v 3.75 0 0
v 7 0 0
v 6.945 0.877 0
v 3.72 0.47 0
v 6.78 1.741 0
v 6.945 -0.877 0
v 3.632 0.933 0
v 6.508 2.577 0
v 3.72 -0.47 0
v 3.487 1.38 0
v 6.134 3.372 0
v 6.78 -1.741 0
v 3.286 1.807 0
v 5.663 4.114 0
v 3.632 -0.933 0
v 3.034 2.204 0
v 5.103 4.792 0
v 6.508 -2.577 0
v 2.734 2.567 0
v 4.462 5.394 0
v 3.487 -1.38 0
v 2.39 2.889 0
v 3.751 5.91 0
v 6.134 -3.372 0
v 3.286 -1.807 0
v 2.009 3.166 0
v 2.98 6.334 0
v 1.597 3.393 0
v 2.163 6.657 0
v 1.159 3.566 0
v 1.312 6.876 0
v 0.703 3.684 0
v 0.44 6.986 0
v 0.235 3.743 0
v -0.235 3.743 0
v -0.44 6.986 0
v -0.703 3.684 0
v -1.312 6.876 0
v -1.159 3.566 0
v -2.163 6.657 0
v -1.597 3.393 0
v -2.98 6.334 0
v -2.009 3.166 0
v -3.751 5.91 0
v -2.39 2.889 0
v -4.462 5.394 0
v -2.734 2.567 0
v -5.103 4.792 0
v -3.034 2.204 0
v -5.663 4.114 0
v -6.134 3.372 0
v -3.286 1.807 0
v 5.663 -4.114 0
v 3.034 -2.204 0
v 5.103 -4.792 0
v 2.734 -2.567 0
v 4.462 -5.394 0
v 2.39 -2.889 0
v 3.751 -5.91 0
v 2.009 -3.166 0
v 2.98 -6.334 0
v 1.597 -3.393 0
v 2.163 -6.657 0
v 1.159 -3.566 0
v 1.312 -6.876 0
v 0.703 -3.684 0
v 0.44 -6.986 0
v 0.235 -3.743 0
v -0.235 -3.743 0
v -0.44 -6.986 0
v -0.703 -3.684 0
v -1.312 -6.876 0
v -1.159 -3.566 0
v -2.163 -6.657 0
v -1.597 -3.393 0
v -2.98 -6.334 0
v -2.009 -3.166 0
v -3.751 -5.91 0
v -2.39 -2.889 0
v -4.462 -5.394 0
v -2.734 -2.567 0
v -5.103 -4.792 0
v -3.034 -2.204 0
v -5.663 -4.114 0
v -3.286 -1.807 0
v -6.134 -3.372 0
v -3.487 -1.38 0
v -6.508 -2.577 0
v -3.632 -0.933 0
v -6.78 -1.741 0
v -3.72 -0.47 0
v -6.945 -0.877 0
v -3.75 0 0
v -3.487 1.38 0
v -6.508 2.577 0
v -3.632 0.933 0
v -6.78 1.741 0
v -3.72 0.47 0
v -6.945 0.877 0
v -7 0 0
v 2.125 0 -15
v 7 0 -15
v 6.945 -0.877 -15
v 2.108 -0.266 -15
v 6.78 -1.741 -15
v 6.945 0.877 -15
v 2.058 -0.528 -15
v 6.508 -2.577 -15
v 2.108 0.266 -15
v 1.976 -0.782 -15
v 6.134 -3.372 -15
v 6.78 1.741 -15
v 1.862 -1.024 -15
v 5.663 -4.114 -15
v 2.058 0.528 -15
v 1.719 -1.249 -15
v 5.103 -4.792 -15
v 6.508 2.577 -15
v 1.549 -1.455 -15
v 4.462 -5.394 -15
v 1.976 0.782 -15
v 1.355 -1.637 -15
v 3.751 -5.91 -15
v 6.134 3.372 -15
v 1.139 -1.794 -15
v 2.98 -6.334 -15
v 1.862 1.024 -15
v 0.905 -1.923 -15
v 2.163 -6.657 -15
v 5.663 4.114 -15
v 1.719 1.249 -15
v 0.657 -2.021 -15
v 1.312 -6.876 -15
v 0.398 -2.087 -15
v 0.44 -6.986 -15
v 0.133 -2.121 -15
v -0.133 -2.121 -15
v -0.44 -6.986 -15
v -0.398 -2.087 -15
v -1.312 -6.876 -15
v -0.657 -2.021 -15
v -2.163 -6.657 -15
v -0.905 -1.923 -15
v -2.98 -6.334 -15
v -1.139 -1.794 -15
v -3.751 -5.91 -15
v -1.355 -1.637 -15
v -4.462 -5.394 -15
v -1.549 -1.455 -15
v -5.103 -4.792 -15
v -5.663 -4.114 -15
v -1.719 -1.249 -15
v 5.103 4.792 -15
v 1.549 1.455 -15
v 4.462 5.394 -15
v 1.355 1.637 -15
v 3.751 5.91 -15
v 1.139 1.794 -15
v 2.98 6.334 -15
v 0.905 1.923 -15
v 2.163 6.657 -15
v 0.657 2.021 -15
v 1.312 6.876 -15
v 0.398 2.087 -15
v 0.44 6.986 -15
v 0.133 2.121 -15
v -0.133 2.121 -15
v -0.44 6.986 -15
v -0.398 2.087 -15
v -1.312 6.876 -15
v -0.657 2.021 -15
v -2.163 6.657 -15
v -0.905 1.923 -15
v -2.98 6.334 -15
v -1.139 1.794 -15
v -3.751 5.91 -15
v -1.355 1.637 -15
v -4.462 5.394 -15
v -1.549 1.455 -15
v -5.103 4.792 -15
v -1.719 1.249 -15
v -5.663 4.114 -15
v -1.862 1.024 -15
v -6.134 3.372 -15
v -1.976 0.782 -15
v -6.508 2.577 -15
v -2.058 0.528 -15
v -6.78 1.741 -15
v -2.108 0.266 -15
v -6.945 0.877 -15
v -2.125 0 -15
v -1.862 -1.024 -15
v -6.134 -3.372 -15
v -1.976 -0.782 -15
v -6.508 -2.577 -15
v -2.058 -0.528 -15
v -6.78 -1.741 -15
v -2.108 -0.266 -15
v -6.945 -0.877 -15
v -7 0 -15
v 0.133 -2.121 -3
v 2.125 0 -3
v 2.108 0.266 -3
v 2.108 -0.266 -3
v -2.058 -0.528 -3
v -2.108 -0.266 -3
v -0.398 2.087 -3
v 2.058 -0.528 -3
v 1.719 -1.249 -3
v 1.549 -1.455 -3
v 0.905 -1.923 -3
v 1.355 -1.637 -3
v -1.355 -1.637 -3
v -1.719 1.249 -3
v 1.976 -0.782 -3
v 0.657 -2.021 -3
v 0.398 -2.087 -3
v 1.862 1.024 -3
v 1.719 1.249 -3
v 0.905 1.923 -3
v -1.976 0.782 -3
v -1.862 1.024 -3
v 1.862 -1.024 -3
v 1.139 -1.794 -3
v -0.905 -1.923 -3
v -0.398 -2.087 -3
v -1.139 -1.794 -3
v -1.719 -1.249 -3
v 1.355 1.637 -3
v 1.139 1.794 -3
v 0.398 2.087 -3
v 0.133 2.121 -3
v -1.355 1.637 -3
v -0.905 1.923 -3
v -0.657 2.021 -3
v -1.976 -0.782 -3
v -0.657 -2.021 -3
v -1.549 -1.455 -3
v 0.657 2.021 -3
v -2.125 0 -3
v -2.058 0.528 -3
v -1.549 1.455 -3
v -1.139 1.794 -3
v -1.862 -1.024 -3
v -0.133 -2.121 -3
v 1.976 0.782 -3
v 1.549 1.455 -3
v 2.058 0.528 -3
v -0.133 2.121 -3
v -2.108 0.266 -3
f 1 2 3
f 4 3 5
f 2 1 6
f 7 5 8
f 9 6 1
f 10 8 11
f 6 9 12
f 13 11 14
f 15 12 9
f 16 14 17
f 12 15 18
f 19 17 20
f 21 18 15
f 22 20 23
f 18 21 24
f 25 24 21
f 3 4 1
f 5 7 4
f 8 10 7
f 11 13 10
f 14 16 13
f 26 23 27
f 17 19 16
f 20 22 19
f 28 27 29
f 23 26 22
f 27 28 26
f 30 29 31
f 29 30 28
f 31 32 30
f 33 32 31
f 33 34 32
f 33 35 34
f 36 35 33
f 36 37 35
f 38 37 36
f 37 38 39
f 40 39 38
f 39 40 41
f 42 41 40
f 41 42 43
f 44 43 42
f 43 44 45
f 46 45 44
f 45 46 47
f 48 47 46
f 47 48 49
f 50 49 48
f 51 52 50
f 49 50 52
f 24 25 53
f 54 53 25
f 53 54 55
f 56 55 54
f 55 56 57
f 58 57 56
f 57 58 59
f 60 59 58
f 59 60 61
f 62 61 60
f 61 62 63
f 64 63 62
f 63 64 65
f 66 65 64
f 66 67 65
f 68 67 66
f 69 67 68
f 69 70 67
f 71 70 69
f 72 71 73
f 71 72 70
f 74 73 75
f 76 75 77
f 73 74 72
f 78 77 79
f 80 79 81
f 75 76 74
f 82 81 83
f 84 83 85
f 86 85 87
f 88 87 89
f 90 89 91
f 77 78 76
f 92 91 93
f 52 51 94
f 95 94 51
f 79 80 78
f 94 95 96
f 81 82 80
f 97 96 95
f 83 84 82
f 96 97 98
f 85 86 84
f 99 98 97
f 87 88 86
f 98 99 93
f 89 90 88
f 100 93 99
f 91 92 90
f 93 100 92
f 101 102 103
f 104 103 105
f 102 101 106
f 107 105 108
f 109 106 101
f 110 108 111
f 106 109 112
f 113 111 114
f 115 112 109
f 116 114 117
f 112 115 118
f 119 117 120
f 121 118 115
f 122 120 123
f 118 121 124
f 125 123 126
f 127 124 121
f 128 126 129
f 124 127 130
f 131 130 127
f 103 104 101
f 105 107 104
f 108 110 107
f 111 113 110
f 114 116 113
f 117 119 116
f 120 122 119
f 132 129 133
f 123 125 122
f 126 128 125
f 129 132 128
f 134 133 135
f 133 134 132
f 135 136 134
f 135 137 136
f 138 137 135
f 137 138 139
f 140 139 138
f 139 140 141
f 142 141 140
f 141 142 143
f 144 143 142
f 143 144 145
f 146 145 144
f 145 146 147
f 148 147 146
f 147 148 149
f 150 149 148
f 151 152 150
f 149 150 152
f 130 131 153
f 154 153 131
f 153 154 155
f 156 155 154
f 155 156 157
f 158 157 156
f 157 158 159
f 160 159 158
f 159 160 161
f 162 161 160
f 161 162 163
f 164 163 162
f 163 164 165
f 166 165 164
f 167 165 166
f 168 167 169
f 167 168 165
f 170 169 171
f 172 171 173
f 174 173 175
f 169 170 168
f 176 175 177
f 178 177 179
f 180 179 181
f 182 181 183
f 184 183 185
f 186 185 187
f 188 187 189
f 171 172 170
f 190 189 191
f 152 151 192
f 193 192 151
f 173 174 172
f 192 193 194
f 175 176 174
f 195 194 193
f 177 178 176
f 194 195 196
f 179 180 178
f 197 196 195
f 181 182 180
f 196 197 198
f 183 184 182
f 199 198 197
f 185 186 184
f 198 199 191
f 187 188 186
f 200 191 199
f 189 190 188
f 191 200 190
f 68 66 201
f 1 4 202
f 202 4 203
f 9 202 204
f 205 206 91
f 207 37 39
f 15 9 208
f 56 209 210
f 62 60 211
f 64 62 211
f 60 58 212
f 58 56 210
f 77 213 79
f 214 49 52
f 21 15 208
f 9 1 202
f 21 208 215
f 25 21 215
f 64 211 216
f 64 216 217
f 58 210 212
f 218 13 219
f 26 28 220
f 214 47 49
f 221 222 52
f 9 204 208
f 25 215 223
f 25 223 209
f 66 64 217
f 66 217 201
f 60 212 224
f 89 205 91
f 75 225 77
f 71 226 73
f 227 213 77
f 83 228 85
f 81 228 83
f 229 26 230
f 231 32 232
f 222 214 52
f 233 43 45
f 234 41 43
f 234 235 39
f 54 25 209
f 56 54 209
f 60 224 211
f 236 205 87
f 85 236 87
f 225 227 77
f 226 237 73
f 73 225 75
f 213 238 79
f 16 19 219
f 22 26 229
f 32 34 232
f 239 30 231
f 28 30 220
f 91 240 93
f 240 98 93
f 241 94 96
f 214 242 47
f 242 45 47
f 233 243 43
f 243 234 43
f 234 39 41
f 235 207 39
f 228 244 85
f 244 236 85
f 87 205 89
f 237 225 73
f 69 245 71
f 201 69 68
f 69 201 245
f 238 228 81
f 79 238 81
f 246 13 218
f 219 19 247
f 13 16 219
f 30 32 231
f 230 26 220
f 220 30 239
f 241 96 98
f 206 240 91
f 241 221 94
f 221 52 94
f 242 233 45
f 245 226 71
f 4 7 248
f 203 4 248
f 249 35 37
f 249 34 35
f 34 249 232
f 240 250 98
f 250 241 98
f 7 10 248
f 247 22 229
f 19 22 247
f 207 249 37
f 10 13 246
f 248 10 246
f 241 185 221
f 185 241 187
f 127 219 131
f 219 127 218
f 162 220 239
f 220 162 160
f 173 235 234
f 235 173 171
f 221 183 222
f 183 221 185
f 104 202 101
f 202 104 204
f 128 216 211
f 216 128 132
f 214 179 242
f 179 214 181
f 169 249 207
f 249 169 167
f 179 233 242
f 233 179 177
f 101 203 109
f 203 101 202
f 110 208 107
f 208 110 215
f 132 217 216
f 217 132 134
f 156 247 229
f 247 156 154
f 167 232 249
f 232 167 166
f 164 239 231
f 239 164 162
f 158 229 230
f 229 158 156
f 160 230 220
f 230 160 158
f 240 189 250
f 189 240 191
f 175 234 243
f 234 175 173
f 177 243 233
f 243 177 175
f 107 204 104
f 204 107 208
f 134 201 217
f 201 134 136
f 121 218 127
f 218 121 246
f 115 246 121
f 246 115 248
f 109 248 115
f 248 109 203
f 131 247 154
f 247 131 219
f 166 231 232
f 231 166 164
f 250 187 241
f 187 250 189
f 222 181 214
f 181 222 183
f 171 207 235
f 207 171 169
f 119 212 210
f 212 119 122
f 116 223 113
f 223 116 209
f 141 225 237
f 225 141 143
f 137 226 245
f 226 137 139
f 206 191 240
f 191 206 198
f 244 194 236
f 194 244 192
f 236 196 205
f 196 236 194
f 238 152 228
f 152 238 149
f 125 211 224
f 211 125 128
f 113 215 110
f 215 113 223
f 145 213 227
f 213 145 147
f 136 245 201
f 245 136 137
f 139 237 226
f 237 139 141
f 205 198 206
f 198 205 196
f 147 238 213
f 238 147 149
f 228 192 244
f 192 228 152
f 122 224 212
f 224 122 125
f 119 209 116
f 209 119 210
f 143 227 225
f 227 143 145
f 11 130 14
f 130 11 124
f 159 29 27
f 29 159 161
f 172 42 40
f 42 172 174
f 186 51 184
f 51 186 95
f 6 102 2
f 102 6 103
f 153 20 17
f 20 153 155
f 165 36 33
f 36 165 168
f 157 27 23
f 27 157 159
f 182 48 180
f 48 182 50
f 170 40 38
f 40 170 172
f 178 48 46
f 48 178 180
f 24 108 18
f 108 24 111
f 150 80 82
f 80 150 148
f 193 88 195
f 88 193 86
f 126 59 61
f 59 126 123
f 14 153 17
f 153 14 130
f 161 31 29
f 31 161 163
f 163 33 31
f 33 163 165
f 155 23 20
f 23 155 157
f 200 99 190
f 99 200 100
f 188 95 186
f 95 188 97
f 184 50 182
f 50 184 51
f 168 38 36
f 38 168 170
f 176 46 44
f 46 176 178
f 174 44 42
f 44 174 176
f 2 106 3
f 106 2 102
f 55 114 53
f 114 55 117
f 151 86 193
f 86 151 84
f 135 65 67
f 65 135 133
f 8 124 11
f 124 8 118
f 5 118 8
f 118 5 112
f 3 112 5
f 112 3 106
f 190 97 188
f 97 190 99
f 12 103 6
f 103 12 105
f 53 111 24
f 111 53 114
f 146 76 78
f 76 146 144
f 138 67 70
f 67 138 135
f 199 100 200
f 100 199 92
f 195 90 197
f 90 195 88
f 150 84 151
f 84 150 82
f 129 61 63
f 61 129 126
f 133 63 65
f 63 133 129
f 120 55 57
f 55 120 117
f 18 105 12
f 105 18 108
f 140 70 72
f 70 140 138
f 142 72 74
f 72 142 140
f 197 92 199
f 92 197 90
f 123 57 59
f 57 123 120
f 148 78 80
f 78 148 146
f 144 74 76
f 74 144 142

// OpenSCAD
$fn = 50;


difference() {
	union() {
		translate(v = [0, 0, -15.0000000000]) {
			cylinder(h = 15, r = 7.0000000000);
		}
		cylinder(h = 0, r = 13.0000000000);
	}
	union() {
		translate(v = [0, 0, 0]) {
			rotate(a = [0, 0, 0]) {
				difference() {
					union() {
						#translate(v = [0, 0, -15.0000000000]) {
							cylinder(h = 15, r = 2.0000000000);
						}
						#translate(v = [0, 0, -3]) {
							cylinder(h = 3, r1 = 2.1250000000, r2 = 3.7500000000);
						}
						#translate(v = [0, 0, -15.0000000000]) {
							cylinder(h = 15, r = 2.1250000000);
						}
						#translate(v = [0, 0, -15.0000000000]) {
							cylinder(h = 15, r = 2.0000000000);
						}
					}
					union();
				}
			}
		}
	}
}
